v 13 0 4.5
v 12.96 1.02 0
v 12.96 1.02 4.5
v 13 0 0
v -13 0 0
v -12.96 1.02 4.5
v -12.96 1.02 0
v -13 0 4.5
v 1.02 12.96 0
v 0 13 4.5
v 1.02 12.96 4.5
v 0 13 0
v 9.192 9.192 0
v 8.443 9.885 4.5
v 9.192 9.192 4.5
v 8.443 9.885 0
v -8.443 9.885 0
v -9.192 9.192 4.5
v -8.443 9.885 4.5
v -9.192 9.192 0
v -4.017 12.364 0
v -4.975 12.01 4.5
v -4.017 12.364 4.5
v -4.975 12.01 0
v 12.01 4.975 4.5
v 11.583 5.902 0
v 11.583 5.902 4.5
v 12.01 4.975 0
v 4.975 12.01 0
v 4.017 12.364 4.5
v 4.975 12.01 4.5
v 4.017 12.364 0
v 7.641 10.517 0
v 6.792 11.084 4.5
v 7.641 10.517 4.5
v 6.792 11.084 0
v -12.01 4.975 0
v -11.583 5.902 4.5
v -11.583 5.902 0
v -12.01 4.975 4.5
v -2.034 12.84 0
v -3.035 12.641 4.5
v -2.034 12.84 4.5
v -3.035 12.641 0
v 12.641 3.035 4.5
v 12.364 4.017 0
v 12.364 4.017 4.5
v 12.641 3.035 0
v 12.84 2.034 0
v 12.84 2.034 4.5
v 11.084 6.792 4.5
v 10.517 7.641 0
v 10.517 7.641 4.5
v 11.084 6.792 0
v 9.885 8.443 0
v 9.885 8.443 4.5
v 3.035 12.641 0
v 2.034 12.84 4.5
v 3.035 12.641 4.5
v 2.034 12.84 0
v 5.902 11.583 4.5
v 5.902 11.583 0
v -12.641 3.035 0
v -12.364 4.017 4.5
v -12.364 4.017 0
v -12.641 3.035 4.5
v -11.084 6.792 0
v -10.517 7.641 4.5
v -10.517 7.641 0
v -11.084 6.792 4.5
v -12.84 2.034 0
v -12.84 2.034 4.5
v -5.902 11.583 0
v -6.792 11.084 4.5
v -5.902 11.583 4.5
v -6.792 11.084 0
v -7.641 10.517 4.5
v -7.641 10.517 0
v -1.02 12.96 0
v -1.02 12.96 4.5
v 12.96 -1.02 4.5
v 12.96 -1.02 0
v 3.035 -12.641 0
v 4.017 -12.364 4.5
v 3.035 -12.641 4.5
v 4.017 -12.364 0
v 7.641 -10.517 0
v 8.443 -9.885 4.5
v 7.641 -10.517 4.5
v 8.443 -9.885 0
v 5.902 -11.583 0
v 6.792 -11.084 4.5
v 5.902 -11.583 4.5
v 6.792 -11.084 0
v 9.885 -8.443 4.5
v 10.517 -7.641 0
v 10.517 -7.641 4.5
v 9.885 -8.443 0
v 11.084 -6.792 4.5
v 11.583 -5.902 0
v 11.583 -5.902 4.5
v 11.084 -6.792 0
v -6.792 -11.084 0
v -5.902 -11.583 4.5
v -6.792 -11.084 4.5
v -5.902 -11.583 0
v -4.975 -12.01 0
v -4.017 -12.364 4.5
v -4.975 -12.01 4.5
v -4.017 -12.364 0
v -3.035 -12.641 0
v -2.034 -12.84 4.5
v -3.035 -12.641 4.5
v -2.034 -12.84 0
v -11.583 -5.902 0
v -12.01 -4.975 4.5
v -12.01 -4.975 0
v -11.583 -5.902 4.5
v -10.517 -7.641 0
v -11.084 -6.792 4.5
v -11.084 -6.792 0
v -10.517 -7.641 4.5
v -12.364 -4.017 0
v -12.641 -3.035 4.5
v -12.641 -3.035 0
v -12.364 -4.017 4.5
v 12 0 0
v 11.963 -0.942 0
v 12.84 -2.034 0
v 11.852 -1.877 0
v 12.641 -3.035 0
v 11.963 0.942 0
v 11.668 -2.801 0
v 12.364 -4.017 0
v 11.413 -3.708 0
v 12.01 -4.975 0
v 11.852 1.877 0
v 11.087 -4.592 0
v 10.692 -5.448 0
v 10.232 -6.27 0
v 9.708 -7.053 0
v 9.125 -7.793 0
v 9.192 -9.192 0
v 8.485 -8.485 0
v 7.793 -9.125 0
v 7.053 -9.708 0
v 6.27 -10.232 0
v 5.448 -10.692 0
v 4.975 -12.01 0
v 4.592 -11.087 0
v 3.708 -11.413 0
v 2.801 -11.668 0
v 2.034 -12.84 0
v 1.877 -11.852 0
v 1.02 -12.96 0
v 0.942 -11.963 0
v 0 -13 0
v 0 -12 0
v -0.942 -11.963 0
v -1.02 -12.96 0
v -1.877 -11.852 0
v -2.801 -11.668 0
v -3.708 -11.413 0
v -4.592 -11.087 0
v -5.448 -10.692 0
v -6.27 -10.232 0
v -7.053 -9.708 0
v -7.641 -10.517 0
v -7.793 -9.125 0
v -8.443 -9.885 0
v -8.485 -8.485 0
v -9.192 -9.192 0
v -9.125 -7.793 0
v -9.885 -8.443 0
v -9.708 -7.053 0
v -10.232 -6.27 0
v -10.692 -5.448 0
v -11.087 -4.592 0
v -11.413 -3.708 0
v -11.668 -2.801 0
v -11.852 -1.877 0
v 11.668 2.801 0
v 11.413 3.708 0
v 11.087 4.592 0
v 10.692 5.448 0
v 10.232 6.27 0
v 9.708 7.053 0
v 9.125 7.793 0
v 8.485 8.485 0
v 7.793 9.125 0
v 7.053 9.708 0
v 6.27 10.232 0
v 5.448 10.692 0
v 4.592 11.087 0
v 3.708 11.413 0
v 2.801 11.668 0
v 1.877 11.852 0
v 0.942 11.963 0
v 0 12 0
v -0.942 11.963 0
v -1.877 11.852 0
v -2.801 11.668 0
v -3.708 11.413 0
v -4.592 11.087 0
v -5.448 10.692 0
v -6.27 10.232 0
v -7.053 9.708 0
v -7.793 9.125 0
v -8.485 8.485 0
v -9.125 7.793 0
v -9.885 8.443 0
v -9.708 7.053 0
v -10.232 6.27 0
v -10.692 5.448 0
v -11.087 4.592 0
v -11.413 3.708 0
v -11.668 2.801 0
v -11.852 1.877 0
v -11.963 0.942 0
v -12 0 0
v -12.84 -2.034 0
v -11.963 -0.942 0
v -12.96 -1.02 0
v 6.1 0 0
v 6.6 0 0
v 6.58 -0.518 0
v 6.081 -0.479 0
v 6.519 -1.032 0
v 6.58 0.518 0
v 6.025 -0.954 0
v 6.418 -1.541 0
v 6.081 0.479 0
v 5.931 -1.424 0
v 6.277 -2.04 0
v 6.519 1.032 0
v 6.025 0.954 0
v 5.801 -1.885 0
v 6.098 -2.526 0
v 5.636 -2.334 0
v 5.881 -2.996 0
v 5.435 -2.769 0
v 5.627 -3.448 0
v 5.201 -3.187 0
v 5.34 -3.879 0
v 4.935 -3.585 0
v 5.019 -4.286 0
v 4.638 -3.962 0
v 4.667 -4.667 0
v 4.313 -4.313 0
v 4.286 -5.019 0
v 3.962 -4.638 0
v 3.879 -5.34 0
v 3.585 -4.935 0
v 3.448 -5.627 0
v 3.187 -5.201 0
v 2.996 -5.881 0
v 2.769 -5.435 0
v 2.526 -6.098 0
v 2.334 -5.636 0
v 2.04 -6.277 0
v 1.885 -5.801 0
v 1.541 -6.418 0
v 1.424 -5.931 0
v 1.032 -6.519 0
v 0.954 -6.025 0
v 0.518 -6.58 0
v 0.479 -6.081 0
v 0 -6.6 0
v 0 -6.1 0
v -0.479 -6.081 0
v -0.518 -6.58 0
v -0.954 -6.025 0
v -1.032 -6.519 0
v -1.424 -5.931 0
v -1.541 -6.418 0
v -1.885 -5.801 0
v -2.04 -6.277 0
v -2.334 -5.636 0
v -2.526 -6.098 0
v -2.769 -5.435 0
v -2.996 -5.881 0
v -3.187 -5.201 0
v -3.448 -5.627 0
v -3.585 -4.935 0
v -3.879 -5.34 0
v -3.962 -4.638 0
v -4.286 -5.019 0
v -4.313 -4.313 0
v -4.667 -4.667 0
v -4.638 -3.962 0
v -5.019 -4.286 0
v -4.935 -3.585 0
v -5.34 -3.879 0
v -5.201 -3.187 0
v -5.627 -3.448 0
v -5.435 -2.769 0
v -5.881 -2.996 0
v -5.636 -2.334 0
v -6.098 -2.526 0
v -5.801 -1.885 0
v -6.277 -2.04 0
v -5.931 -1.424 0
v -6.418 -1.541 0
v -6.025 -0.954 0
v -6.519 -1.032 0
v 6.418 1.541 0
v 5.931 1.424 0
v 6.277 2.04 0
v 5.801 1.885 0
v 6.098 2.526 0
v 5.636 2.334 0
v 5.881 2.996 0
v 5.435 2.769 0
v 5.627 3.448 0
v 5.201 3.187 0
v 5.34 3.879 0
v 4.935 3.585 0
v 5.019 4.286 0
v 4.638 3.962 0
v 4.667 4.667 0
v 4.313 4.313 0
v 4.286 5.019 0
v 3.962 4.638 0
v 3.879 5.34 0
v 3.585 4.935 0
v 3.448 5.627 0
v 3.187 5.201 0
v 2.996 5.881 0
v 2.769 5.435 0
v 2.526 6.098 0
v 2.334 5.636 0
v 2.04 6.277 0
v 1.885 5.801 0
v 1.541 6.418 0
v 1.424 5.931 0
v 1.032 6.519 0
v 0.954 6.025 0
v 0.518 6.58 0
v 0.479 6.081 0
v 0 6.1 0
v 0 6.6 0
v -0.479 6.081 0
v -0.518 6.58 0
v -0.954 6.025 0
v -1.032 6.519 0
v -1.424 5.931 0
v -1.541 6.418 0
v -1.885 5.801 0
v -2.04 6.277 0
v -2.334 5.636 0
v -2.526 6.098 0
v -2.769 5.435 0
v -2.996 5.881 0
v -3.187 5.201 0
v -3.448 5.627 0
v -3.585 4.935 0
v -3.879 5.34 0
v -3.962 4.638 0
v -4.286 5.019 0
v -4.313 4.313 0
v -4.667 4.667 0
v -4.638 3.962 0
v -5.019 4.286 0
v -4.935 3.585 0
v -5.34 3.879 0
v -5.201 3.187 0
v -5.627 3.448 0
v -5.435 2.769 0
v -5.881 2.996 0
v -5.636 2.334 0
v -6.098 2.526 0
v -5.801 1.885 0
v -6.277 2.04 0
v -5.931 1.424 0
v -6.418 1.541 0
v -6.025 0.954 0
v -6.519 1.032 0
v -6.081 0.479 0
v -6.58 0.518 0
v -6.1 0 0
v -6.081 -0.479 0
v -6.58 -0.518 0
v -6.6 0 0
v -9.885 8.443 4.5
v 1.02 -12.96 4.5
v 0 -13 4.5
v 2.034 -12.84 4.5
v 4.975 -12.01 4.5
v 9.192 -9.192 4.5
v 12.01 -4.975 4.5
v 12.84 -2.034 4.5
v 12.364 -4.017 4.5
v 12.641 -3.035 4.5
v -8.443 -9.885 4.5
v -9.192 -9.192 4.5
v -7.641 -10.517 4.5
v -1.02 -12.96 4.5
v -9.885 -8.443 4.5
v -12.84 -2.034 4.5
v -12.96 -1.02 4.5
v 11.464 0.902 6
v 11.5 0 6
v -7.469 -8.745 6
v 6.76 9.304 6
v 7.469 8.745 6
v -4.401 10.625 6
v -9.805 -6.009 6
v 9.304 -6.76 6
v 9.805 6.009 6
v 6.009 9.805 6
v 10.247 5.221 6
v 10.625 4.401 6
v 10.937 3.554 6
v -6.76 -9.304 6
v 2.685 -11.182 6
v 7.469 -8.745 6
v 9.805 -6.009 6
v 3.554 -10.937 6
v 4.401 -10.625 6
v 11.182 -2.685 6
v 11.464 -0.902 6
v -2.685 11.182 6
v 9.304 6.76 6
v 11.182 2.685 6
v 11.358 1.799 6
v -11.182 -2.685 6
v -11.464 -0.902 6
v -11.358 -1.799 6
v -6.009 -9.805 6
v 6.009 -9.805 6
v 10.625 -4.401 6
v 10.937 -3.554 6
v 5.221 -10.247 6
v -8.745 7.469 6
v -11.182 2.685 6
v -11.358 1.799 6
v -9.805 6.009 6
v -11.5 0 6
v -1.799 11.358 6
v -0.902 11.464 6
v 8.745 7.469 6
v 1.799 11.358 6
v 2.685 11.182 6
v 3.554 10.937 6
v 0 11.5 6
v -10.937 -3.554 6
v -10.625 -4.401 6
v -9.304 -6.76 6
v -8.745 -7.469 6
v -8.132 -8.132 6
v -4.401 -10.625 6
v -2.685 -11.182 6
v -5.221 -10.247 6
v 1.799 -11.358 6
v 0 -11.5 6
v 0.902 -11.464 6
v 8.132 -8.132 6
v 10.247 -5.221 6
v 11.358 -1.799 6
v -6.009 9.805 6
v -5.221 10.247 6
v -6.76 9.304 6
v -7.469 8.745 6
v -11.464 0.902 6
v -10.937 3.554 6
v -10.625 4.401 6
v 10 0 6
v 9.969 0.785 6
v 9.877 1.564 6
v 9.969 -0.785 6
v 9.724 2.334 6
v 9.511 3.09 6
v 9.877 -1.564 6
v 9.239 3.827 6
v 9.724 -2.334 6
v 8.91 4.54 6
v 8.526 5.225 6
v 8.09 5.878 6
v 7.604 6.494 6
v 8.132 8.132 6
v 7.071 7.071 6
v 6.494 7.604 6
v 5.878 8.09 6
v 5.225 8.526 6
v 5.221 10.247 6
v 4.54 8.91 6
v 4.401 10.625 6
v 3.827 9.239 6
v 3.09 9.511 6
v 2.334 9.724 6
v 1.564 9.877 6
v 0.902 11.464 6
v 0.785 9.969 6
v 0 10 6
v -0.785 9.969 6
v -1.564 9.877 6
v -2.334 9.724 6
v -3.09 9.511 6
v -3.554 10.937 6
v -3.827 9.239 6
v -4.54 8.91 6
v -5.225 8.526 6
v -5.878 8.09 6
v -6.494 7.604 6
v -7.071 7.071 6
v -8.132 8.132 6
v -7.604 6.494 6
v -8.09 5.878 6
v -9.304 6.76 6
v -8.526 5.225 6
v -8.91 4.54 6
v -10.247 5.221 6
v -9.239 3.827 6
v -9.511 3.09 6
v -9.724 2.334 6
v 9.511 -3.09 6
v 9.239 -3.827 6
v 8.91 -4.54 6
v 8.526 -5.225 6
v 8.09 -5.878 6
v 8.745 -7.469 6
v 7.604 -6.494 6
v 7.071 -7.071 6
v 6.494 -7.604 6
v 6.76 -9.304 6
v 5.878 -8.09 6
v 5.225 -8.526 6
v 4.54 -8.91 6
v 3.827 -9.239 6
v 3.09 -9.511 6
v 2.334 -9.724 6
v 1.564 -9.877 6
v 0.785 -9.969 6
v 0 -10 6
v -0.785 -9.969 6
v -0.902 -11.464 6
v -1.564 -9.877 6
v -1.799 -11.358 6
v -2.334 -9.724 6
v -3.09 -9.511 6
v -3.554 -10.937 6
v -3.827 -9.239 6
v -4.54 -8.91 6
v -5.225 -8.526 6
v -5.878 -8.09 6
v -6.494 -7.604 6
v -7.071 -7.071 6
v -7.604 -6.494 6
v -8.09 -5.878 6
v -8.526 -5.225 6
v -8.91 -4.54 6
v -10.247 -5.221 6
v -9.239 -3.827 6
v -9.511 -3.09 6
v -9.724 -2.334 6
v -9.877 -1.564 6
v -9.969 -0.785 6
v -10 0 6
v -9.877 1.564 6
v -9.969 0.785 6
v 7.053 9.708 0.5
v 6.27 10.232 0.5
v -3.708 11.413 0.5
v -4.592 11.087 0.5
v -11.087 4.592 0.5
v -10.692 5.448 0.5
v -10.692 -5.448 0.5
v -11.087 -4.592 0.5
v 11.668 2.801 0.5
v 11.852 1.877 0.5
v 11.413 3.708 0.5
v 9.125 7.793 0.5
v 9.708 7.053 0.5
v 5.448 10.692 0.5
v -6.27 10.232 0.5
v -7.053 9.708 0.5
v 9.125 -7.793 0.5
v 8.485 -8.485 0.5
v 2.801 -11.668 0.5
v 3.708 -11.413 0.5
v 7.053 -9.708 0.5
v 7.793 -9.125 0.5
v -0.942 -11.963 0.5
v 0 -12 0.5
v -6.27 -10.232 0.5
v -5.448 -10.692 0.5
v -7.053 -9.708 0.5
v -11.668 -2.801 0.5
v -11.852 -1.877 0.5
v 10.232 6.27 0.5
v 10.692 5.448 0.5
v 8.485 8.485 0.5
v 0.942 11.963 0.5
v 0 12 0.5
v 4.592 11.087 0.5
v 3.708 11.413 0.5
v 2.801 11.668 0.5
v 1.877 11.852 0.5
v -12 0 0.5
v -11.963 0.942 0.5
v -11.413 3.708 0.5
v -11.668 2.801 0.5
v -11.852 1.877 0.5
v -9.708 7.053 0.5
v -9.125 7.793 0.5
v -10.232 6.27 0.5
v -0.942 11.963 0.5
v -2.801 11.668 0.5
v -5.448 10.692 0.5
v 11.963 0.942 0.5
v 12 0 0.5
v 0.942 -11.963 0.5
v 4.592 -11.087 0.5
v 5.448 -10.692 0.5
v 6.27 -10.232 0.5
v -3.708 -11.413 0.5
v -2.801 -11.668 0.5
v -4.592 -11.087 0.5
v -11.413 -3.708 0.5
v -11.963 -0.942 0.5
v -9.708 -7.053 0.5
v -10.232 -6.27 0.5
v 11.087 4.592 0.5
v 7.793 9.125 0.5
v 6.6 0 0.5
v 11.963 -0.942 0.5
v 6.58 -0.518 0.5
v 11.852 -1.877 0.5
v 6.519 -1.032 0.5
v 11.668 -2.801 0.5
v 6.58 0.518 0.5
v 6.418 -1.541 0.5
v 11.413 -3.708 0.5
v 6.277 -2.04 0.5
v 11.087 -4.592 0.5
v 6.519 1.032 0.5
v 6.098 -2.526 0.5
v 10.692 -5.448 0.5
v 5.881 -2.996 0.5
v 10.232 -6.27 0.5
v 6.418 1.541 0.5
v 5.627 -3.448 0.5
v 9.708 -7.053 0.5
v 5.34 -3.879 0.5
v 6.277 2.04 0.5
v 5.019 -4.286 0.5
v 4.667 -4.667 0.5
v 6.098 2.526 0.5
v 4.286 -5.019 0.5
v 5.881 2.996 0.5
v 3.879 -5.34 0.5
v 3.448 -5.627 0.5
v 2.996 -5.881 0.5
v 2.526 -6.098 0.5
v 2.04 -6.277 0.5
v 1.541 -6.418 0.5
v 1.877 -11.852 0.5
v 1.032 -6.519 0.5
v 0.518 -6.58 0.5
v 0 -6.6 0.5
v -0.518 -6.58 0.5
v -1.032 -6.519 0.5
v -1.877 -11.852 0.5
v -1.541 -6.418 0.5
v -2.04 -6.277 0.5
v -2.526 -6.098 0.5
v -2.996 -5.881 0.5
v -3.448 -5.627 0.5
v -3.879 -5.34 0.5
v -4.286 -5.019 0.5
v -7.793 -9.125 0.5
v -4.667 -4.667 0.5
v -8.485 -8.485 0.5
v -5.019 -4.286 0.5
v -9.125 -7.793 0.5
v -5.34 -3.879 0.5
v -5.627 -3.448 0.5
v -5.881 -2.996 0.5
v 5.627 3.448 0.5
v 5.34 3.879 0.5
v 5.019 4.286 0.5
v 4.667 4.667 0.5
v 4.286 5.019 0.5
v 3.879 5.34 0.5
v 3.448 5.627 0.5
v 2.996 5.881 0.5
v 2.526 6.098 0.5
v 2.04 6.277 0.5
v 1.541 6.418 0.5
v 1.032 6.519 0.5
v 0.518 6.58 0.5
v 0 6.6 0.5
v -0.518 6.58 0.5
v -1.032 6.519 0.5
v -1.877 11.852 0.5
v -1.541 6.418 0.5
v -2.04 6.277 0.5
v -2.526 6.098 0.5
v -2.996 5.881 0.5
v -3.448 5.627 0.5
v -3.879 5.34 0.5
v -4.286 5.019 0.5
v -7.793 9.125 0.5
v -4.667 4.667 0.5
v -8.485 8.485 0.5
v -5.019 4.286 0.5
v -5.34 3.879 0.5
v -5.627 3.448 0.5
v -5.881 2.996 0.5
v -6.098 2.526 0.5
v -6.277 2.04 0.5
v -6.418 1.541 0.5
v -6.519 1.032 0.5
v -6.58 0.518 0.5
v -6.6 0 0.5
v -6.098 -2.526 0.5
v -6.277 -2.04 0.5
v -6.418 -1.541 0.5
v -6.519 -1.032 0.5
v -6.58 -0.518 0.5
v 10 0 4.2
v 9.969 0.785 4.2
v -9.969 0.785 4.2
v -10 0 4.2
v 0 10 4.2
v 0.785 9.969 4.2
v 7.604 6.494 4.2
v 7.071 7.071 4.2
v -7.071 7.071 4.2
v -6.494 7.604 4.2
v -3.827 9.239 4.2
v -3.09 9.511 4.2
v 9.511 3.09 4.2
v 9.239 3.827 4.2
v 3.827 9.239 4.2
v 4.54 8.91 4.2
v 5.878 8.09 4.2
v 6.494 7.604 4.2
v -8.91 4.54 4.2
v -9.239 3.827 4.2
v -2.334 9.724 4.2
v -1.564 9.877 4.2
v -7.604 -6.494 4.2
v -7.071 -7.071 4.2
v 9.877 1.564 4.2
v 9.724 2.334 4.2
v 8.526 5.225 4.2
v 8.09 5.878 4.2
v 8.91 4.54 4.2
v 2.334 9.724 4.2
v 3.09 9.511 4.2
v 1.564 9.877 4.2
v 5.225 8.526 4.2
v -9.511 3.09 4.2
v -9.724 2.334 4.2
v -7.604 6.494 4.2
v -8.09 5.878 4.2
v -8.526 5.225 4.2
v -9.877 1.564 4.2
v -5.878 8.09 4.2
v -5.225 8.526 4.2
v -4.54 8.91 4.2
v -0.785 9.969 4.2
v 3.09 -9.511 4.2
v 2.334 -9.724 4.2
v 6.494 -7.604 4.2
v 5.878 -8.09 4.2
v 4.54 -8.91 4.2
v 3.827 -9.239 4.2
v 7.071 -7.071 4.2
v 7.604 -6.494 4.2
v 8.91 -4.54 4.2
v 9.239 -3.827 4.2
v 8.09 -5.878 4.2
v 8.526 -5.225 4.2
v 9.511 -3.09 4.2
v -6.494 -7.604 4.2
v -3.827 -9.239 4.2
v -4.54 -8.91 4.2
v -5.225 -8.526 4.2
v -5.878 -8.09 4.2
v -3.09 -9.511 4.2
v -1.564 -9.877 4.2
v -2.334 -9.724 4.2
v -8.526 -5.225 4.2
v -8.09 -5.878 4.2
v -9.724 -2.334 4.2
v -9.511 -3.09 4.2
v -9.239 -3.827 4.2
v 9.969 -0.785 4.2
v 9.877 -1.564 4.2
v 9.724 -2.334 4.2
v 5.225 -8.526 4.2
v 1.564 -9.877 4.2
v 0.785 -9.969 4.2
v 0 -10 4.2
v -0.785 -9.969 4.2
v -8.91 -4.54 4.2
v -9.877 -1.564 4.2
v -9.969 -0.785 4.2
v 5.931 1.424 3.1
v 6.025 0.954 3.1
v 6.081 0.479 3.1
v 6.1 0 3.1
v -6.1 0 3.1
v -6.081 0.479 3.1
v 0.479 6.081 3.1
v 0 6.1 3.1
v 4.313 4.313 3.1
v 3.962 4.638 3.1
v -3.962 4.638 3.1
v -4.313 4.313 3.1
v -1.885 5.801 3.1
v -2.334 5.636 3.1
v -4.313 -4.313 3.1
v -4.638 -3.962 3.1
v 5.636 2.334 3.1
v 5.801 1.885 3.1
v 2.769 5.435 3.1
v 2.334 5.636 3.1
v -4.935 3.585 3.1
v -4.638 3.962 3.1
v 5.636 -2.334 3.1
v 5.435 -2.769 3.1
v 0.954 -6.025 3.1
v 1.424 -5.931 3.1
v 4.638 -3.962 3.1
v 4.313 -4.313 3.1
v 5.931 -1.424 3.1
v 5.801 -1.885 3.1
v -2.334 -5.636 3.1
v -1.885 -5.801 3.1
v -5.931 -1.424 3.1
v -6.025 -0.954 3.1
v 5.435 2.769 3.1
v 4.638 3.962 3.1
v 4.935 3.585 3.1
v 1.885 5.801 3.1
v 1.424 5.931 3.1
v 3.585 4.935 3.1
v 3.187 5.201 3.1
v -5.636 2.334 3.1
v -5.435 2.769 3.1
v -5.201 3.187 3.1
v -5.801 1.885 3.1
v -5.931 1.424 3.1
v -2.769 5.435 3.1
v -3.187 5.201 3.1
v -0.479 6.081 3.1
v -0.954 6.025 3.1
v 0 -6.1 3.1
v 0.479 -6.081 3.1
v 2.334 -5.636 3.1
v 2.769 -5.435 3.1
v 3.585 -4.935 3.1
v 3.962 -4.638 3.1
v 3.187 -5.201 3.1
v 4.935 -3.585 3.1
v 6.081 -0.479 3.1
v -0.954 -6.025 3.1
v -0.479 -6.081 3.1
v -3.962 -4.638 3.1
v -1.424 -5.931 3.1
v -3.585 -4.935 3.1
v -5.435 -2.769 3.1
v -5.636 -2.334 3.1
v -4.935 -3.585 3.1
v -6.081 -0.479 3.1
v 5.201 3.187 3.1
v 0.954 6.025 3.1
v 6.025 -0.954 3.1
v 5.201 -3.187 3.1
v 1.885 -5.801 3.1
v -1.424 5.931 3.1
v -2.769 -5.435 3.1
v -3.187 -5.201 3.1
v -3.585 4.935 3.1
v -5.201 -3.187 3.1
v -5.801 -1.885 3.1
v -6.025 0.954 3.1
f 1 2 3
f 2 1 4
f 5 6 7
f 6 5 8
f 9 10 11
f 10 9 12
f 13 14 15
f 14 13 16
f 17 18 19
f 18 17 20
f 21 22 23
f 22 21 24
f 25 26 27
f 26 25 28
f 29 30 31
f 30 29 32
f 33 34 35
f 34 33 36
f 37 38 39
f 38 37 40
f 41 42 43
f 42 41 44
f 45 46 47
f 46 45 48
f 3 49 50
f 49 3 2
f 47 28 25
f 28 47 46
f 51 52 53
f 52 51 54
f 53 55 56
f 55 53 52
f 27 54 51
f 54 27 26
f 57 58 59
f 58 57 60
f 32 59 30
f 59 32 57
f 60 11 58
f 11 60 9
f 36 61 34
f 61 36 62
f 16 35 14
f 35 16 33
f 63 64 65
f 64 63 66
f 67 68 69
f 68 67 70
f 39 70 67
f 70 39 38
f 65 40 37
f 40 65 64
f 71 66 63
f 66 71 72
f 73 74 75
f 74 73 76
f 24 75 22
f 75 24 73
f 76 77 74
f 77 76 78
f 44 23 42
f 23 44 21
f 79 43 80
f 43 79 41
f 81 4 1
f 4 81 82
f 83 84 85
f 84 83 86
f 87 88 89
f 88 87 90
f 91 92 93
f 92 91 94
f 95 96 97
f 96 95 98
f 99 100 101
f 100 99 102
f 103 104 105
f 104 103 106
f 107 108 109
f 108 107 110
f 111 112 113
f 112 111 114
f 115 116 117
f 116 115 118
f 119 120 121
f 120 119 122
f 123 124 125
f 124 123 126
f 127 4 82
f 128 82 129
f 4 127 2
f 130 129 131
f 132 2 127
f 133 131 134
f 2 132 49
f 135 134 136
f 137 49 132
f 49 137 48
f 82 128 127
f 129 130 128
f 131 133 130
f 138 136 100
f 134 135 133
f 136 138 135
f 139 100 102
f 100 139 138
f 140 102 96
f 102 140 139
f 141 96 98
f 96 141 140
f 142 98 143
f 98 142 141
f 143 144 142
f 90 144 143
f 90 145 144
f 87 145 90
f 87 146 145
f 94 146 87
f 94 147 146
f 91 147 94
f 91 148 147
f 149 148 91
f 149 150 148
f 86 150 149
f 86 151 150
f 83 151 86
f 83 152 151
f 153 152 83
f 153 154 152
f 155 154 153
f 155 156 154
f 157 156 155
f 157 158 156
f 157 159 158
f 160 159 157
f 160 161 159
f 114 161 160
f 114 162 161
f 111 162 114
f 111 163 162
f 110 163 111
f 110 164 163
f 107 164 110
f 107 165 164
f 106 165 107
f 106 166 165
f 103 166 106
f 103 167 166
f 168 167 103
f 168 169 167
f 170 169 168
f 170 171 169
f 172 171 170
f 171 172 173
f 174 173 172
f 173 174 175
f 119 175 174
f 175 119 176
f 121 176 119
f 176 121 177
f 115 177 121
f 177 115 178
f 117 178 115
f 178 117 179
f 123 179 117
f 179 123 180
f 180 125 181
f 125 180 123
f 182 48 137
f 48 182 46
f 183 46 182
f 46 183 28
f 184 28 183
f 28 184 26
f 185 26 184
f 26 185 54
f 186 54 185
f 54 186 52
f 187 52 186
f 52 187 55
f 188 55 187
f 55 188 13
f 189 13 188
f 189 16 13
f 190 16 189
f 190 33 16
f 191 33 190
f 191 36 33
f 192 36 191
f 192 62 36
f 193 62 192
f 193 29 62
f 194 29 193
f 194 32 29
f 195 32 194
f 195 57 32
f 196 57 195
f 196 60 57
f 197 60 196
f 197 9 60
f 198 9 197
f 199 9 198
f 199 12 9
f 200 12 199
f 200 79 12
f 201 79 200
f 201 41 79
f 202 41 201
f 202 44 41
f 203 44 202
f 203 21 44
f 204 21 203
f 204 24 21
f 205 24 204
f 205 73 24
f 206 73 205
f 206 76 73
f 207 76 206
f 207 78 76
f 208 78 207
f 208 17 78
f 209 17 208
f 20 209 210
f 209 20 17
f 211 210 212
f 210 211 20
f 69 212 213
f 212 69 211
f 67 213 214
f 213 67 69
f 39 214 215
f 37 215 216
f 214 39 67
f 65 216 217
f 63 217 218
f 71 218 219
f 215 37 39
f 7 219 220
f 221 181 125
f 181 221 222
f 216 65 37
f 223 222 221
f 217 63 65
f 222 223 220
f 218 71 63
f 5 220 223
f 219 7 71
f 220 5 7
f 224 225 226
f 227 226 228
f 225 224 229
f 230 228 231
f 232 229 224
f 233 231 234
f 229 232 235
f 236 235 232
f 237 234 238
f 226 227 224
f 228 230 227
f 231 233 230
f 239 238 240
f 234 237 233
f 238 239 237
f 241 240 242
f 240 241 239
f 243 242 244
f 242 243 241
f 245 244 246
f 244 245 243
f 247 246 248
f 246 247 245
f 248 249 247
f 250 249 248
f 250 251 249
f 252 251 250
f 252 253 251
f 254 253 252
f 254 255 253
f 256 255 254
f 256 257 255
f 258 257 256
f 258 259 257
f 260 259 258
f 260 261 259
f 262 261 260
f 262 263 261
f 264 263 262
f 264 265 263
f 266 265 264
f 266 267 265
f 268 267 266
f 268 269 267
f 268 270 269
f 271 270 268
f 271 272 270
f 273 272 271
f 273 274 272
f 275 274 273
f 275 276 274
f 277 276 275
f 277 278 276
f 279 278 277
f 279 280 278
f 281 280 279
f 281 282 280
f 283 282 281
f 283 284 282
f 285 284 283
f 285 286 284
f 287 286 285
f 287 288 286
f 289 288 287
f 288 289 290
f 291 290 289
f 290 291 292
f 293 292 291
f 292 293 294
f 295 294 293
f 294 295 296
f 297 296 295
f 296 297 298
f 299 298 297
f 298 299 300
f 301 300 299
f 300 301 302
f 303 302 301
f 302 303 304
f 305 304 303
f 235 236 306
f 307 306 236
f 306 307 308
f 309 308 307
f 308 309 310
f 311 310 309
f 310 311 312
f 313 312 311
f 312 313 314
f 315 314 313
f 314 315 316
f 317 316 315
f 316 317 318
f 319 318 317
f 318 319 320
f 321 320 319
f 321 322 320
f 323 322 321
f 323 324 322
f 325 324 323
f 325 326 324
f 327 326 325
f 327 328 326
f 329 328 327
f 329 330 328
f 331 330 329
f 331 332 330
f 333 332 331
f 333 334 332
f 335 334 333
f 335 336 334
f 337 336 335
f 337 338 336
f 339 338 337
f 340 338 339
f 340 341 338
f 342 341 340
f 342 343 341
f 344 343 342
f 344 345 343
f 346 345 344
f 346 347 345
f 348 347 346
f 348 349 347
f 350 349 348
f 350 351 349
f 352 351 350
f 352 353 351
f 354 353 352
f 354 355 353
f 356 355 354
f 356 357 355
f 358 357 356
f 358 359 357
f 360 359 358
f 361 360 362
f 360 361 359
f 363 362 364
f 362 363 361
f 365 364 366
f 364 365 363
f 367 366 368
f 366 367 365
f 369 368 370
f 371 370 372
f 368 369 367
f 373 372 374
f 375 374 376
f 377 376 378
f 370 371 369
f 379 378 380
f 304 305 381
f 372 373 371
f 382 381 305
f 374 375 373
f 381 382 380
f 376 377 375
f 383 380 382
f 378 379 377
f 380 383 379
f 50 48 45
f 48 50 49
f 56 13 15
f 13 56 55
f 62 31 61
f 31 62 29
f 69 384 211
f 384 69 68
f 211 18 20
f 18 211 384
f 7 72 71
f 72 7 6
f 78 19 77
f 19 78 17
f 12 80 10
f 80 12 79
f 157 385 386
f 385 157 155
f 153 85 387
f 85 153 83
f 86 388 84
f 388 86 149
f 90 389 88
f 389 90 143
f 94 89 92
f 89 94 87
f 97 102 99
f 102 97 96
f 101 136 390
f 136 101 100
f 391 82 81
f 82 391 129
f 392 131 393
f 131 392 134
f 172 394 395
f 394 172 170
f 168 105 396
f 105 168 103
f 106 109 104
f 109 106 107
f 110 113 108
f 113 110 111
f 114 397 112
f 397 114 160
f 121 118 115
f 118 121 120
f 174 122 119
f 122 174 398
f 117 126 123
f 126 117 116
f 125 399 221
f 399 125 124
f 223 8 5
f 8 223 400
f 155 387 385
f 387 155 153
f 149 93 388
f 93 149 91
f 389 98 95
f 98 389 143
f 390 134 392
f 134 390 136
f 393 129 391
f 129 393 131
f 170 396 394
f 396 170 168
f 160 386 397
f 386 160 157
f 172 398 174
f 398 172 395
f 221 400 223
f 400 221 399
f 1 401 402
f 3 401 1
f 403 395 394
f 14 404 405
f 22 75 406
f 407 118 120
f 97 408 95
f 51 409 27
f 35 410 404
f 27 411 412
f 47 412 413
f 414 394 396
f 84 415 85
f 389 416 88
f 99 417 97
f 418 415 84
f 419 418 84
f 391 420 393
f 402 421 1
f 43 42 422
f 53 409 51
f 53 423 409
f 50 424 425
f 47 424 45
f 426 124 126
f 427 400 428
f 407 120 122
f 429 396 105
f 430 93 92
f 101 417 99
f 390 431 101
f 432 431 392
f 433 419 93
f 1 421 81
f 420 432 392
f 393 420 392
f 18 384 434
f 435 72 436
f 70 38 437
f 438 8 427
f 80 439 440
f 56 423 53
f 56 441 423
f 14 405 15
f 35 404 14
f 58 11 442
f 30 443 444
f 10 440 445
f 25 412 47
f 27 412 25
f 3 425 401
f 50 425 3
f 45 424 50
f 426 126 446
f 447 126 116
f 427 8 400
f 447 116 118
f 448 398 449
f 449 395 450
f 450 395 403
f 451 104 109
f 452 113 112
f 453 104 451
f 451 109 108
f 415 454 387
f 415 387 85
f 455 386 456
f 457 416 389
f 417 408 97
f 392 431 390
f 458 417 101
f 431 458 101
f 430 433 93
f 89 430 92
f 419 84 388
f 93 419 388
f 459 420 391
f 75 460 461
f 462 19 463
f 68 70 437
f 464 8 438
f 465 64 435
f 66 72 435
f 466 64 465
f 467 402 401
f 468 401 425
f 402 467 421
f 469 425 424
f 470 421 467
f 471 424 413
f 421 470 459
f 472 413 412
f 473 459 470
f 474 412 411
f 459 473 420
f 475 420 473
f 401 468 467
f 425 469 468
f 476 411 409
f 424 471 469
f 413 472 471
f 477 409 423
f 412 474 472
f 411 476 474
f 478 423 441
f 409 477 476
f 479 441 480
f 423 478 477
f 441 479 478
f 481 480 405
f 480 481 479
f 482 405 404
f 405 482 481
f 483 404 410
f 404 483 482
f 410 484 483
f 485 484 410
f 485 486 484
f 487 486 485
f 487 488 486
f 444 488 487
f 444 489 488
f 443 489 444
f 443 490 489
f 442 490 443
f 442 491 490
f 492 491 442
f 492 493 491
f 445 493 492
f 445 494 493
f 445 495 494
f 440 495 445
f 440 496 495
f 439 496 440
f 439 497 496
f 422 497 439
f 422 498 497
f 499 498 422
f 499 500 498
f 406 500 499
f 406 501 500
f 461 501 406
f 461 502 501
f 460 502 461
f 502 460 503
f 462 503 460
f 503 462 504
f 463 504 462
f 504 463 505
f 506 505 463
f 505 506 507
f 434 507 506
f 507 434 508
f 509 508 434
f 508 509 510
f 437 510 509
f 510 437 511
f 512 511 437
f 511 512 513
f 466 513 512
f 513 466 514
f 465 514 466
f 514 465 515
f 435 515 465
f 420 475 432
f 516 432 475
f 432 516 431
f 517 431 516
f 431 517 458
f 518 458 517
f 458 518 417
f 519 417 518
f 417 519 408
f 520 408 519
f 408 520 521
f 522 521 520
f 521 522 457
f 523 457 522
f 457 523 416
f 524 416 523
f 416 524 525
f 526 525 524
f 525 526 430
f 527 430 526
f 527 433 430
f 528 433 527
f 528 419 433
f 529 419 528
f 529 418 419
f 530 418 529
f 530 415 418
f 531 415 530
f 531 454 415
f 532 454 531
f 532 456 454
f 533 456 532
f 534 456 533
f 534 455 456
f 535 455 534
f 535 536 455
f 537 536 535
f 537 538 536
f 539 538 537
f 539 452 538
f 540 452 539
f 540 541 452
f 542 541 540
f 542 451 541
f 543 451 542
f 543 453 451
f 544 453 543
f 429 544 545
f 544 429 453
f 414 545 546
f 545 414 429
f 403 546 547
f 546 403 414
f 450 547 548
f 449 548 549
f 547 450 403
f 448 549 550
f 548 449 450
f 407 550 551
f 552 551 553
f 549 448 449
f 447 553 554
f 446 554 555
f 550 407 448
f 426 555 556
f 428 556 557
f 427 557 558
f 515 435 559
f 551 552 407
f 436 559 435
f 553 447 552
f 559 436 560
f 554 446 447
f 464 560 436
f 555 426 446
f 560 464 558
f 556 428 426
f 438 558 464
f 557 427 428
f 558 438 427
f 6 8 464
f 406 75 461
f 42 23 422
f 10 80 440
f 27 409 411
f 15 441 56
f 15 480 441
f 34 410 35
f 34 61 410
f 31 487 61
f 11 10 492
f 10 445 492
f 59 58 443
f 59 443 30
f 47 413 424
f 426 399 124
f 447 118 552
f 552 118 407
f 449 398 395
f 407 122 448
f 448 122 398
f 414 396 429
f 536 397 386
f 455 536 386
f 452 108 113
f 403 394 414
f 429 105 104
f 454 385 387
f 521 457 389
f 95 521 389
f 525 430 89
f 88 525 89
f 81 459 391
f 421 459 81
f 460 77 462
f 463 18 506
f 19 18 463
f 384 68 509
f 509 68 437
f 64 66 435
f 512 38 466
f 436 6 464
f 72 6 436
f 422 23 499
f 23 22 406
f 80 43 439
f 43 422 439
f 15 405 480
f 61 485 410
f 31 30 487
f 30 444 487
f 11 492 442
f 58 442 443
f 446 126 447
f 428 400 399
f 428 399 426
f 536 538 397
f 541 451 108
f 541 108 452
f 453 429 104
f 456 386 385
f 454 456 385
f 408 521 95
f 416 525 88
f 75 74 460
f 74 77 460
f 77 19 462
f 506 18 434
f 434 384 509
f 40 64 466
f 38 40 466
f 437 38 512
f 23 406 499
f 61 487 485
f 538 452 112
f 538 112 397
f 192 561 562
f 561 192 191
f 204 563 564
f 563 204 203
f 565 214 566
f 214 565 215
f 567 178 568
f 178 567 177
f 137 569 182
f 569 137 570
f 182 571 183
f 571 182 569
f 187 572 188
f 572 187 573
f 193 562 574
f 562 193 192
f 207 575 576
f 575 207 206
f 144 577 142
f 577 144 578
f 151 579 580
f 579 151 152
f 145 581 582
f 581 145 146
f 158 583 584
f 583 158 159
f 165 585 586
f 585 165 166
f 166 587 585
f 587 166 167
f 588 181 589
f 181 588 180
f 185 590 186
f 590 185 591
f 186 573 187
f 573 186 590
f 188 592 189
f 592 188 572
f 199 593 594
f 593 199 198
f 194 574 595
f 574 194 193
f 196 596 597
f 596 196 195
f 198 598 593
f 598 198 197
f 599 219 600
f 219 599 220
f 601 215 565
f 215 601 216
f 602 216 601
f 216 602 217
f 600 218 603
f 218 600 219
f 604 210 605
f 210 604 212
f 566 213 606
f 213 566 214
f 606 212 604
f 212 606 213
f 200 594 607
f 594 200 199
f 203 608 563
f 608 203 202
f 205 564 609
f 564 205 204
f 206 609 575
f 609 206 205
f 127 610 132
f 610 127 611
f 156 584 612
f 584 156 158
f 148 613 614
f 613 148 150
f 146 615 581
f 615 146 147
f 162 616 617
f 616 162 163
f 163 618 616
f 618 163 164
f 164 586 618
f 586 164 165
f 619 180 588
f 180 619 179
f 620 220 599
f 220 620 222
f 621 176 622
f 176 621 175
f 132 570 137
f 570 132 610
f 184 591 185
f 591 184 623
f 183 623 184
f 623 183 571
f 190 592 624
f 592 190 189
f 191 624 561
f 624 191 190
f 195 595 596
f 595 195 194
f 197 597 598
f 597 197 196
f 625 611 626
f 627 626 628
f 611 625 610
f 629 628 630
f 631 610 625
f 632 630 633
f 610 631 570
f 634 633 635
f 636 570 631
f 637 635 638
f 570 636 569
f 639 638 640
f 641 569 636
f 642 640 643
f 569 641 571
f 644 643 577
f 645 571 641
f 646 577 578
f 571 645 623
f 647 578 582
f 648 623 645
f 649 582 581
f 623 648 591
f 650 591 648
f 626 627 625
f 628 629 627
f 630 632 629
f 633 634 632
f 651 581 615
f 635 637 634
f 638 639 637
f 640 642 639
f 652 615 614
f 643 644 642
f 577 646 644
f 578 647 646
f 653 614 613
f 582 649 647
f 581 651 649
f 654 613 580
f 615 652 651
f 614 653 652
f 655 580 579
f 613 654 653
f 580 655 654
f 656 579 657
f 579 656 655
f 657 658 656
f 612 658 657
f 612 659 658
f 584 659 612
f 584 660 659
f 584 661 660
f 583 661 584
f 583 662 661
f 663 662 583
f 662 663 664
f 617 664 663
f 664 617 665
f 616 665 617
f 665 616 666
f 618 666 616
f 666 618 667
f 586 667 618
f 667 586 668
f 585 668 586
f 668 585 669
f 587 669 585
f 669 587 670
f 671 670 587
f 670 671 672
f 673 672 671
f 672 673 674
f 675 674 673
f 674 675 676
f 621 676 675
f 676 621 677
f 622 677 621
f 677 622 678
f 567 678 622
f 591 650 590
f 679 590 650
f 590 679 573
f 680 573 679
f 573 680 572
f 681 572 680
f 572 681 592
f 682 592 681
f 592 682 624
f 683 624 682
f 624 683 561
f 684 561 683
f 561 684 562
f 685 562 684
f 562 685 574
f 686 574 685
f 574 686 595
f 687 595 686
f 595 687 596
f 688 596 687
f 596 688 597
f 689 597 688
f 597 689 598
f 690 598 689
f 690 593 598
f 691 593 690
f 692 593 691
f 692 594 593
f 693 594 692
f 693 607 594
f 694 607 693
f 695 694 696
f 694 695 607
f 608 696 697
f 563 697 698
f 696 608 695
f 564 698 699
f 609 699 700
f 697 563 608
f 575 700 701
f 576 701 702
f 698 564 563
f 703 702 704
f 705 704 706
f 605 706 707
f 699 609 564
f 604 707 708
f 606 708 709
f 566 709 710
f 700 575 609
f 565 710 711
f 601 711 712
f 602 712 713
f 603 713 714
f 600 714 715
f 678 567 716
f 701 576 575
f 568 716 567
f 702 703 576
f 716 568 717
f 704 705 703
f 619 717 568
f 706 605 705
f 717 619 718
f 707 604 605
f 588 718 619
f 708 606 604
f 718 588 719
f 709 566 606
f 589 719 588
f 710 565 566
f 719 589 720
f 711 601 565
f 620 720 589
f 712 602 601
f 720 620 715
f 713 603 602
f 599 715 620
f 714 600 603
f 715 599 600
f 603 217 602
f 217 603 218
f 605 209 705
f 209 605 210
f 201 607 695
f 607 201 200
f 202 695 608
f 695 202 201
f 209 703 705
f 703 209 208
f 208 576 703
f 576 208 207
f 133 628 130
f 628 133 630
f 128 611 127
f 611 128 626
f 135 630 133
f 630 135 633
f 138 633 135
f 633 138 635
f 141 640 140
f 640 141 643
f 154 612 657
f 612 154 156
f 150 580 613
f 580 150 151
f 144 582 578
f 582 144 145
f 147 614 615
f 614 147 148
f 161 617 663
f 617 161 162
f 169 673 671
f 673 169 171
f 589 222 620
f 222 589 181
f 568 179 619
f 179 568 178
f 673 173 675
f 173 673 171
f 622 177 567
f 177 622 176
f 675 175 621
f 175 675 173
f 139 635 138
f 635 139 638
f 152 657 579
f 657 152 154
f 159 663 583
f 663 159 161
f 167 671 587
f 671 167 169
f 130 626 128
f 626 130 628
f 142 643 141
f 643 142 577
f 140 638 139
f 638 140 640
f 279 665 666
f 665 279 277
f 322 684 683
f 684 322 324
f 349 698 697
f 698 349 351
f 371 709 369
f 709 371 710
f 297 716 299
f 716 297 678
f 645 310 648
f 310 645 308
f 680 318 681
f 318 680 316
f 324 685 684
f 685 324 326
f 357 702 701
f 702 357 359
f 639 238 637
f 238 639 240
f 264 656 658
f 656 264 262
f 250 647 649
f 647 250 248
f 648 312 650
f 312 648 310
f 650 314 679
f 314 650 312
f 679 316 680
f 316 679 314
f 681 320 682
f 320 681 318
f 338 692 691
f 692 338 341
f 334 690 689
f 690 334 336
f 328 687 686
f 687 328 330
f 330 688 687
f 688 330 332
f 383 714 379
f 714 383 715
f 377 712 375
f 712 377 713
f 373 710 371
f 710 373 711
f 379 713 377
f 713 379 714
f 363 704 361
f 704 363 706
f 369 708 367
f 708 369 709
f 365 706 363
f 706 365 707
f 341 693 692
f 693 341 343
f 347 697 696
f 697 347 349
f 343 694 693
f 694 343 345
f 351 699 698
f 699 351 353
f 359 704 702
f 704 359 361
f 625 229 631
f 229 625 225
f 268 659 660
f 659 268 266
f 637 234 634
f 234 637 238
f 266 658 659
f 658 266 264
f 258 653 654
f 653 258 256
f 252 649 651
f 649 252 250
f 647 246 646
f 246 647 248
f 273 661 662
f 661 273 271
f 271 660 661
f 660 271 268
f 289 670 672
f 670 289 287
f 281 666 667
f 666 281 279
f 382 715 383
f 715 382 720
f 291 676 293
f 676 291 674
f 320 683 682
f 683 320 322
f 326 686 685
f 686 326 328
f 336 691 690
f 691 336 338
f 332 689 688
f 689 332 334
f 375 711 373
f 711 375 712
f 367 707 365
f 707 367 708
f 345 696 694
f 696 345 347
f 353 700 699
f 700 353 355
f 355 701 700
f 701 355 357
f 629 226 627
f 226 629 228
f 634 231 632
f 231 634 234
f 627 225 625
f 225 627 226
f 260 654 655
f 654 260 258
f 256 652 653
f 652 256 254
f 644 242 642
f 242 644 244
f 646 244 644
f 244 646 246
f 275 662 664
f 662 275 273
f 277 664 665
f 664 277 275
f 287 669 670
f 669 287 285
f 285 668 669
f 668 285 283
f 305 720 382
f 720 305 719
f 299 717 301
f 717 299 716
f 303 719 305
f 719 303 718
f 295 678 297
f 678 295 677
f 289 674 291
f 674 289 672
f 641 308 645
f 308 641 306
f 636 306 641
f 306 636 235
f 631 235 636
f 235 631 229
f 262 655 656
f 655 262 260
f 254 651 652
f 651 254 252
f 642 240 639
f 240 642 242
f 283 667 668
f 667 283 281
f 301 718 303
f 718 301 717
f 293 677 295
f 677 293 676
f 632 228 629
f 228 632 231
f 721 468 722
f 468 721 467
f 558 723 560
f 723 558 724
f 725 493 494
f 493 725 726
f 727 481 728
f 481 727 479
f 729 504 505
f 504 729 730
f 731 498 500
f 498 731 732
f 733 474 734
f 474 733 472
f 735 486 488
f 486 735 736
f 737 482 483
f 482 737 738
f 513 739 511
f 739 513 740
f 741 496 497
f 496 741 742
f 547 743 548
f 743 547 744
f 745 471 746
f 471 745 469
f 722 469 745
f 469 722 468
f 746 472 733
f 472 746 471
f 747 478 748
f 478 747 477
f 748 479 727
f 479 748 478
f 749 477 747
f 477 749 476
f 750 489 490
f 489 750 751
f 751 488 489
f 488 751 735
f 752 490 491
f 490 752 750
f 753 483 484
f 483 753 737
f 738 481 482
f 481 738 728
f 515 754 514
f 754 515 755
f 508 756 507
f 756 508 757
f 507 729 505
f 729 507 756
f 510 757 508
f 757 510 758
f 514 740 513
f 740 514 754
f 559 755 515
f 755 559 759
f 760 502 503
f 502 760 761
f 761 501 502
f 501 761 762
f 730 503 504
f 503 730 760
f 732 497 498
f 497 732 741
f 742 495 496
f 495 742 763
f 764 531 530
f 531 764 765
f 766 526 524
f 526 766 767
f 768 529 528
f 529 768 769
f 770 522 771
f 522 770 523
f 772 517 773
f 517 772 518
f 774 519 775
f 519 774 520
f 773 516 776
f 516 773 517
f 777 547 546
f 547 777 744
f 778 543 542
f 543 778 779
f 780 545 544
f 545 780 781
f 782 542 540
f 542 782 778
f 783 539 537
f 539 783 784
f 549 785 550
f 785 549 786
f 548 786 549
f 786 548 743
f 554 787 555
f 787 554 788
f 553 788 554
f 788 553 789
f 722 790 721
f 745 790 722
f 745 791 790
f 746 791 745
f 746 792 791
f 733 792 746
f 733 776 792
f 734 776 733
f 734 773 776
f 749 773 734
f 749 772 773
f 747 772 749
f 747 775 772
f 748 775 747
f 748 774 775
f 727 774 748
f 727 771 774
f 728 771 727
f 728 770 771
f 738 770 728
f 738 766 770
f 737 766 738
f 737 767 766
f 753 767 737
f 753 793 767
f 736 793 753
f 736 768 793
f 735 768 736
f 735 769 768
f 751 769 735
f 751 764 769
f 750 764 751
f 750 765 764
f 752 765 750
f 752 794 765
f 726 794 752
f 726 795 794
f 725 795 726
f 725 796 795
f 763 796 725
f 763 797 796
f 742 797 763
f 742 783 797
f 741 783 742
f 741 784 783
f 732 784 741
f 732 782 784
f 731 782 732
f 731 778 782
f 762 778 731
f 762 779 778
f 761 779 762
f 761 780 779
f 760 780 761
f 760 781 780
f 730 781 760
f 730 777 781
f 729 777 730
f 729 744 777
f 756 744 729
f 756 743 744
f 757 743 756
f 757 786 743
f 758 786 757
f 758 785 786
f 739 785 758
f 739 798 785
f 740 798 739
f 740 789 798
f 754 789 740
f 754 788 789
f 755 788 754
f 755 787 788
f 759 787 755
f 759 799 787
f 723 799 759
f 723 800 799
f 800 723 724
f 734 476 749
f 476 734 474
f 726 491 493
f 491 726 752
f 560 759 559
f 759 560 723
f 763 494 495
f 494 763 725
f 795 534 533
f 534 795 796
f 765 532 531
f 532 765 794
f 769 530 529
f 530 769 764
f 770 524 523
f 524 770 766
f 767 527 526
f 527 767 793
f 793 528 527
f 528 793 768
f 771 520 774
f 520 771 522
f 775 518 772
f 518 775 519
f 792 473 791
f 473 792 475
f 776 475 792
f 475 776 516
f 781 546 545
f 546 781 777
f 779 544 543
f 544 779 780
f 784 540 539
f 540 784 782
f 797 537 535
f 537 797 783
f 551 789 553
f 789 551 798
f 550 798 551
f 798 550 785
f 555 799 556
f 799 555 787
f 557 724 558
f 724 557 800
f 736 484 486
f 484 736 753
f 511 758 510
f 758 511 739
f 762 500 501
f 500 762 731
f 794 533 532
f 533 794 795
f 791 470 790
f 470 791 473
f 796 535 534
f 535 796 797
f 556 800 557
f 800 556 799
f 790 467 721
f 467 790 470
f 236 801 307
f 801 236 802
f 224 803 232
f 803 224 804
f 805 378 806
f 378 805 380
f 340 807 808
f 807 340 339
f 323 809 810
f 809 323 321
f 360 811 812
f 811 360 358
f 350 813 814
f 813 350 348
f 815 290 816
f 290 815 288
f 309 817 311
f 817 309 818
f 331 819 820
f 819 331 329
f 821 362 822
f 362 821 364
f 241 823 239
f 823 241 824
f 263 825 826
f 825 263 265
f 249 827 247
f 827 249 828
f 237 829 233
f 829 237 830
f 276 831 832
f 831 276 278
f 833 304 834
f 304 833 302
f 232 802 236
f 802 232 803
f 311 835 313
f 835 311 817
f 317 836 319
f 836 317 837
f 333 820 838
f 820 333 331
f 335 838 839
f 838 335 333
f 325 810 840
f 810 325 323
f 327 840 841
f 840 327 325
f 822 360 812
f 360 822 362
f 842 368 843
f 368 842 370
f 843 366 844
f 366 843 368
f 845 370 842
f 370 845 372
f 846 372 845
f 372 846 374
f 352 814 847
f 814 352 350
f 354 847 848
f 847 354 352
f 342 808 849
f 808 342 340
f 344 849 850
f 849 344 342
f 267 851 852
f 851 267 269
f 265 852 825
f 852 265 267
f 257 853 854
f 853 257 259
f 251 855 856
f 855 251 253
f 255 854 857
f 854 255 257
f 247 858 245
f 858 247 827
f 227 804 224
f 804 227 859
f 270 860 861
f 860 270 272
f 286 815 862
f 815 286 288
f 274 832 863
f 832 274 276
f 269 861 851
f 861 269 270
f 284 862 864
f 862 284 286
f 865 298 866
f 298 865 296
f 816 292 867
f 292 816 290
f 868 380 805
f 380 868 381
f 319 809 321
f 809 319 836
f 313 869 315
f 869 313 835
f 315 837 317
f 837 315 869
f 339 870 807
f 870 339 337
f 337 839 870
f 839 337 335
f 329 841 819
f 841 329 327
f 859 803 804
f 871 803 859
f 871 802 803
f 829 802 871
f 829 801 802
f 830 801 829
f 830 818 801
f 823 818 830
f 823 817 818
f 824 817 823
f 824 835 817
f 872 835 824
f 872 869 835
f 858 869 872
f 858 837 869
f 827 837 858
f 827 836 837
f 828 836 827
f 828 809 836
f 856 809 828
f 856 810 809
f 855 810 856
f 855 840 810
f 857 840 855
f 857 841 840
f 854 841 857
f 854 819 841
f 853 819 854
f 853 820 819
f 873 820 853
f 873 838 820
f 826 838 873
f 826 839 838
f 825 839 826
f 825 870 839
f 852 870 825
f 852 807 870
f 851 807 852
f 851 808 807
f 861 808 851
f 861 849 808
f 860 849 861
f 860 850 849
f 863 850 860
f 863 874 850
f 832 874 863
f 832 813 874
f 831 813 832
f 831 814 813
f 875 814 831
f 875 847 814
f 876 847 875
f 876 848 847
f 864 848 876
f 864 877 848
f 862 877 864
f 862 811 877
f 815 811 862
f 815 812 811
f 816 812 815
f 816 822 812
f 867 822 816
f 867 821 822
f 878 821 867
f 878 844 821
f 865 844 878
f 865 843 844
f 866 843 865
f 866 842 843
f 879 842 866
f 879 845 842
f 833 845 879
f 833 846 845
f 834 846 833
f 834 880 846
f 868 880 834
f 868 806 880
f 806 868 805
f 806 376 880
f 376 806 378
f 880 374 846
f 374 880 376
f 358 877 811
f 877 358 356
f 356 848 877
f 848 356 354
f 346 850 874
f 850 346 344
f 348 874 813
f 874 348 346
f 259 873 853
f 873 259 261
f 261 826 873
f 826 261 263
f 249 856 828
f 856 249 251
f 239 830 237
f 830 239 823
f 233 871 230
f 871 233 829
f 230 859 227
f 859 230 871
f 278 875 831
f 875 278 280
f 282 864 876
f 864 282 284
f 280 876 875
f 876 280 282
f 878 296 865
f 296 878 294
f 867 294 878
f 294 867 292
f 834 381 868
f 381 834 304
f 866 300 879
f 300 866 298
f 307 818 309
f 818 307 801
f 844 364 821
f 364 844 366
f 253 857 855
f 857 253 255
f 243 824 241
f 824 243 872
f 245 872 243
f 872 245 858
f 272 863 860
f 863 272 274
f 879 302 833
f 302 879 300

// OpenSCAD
/* ==========================================================================
   PROJETO CAMPO TÁTIL - ACESSÓRIO BOTAO MAGNÉTICO (ESTILO TAMPA DE GARRAFA)
   Design de perfil baixo com rebaixo para dedo no topo e ímã na base.
   ========================================================================== */

$fn = 80;

// Parâmetros do Botão
diametro_externo = 26.0;   // Diâmetro total do botão
altura_total = 6.0;        // Perfil ultra-baixo
dedo_rebaixo_d = 20.0;     // Diâmetro do berço do dedo
dedo_rebaixo_h = 1.8;      // Altura da borda pequena de relevo

// Parâmetros do Ímã e Teflon
ima_d = 12.2;              // Ímã de 12mm (com folga de 0.2mm)
ima_h = 3.2;               // Espessura do Ímã de 3mm (com folga de 0.2mm)
teflon_prof = 0.5;         // Rebaixo inferior para fita de Teflon

module botao_magnetico() {
    difference() {
        // 1. Corpo principal com chanfro na borda externa superior
        union() {
            // Cilindro base inferior
            cylinder(h = altura_total - 1.5, r = diametro_externo/2);
            // Cone de chanfro superior (reduz o raio de 13mm para 11.5mm no topo)
            translate([0, 0, altura_total - 1.5])
                cylinder(h = 1.5, r1 = diametro_externo/2, r2 = (diametro_externo - 3.0)/2);
        }
        
        // 2. Rebaixo para o dedo no topo (deixa uma borda fina de 1.8mm de altura e 3mm de parede)
        translate([0, 0, altura_total - dedo_rebaixo_h])
            cylinder(h = dedo_rebaixo_h + 0.1, r = dedo_rebaixo_d/2);
            
        // 3. Alojamento do Ímã Neodímio 12x3mm por baixo (profundidade de 3.2mm)
        // Isso deixa uma parede sólida de exatamente 1.0mm no meio do botão (Z=3.2 até Z=4.2)
        translate([0, 0, -0.1])
            cylinder(h = ima_h, r = ima_d/2);
            
        // 4. Rebaixo circular na base para Fita de Teflon (PTFE)
        // Largura do anel: de raio 6.6mm até 12.0mm
        translate([0, 0, -0.1])
            difference() {
                cylinder(h = teflon_prof + 0.1, r = diametro_externo/2 - 1.0);
                cylinder(h = teflon_prof + 0.2, r = ima_d/2 + 0.5); // Preserva o colar ao redor do ímã
            }
    }
}

botao_magnetico();
